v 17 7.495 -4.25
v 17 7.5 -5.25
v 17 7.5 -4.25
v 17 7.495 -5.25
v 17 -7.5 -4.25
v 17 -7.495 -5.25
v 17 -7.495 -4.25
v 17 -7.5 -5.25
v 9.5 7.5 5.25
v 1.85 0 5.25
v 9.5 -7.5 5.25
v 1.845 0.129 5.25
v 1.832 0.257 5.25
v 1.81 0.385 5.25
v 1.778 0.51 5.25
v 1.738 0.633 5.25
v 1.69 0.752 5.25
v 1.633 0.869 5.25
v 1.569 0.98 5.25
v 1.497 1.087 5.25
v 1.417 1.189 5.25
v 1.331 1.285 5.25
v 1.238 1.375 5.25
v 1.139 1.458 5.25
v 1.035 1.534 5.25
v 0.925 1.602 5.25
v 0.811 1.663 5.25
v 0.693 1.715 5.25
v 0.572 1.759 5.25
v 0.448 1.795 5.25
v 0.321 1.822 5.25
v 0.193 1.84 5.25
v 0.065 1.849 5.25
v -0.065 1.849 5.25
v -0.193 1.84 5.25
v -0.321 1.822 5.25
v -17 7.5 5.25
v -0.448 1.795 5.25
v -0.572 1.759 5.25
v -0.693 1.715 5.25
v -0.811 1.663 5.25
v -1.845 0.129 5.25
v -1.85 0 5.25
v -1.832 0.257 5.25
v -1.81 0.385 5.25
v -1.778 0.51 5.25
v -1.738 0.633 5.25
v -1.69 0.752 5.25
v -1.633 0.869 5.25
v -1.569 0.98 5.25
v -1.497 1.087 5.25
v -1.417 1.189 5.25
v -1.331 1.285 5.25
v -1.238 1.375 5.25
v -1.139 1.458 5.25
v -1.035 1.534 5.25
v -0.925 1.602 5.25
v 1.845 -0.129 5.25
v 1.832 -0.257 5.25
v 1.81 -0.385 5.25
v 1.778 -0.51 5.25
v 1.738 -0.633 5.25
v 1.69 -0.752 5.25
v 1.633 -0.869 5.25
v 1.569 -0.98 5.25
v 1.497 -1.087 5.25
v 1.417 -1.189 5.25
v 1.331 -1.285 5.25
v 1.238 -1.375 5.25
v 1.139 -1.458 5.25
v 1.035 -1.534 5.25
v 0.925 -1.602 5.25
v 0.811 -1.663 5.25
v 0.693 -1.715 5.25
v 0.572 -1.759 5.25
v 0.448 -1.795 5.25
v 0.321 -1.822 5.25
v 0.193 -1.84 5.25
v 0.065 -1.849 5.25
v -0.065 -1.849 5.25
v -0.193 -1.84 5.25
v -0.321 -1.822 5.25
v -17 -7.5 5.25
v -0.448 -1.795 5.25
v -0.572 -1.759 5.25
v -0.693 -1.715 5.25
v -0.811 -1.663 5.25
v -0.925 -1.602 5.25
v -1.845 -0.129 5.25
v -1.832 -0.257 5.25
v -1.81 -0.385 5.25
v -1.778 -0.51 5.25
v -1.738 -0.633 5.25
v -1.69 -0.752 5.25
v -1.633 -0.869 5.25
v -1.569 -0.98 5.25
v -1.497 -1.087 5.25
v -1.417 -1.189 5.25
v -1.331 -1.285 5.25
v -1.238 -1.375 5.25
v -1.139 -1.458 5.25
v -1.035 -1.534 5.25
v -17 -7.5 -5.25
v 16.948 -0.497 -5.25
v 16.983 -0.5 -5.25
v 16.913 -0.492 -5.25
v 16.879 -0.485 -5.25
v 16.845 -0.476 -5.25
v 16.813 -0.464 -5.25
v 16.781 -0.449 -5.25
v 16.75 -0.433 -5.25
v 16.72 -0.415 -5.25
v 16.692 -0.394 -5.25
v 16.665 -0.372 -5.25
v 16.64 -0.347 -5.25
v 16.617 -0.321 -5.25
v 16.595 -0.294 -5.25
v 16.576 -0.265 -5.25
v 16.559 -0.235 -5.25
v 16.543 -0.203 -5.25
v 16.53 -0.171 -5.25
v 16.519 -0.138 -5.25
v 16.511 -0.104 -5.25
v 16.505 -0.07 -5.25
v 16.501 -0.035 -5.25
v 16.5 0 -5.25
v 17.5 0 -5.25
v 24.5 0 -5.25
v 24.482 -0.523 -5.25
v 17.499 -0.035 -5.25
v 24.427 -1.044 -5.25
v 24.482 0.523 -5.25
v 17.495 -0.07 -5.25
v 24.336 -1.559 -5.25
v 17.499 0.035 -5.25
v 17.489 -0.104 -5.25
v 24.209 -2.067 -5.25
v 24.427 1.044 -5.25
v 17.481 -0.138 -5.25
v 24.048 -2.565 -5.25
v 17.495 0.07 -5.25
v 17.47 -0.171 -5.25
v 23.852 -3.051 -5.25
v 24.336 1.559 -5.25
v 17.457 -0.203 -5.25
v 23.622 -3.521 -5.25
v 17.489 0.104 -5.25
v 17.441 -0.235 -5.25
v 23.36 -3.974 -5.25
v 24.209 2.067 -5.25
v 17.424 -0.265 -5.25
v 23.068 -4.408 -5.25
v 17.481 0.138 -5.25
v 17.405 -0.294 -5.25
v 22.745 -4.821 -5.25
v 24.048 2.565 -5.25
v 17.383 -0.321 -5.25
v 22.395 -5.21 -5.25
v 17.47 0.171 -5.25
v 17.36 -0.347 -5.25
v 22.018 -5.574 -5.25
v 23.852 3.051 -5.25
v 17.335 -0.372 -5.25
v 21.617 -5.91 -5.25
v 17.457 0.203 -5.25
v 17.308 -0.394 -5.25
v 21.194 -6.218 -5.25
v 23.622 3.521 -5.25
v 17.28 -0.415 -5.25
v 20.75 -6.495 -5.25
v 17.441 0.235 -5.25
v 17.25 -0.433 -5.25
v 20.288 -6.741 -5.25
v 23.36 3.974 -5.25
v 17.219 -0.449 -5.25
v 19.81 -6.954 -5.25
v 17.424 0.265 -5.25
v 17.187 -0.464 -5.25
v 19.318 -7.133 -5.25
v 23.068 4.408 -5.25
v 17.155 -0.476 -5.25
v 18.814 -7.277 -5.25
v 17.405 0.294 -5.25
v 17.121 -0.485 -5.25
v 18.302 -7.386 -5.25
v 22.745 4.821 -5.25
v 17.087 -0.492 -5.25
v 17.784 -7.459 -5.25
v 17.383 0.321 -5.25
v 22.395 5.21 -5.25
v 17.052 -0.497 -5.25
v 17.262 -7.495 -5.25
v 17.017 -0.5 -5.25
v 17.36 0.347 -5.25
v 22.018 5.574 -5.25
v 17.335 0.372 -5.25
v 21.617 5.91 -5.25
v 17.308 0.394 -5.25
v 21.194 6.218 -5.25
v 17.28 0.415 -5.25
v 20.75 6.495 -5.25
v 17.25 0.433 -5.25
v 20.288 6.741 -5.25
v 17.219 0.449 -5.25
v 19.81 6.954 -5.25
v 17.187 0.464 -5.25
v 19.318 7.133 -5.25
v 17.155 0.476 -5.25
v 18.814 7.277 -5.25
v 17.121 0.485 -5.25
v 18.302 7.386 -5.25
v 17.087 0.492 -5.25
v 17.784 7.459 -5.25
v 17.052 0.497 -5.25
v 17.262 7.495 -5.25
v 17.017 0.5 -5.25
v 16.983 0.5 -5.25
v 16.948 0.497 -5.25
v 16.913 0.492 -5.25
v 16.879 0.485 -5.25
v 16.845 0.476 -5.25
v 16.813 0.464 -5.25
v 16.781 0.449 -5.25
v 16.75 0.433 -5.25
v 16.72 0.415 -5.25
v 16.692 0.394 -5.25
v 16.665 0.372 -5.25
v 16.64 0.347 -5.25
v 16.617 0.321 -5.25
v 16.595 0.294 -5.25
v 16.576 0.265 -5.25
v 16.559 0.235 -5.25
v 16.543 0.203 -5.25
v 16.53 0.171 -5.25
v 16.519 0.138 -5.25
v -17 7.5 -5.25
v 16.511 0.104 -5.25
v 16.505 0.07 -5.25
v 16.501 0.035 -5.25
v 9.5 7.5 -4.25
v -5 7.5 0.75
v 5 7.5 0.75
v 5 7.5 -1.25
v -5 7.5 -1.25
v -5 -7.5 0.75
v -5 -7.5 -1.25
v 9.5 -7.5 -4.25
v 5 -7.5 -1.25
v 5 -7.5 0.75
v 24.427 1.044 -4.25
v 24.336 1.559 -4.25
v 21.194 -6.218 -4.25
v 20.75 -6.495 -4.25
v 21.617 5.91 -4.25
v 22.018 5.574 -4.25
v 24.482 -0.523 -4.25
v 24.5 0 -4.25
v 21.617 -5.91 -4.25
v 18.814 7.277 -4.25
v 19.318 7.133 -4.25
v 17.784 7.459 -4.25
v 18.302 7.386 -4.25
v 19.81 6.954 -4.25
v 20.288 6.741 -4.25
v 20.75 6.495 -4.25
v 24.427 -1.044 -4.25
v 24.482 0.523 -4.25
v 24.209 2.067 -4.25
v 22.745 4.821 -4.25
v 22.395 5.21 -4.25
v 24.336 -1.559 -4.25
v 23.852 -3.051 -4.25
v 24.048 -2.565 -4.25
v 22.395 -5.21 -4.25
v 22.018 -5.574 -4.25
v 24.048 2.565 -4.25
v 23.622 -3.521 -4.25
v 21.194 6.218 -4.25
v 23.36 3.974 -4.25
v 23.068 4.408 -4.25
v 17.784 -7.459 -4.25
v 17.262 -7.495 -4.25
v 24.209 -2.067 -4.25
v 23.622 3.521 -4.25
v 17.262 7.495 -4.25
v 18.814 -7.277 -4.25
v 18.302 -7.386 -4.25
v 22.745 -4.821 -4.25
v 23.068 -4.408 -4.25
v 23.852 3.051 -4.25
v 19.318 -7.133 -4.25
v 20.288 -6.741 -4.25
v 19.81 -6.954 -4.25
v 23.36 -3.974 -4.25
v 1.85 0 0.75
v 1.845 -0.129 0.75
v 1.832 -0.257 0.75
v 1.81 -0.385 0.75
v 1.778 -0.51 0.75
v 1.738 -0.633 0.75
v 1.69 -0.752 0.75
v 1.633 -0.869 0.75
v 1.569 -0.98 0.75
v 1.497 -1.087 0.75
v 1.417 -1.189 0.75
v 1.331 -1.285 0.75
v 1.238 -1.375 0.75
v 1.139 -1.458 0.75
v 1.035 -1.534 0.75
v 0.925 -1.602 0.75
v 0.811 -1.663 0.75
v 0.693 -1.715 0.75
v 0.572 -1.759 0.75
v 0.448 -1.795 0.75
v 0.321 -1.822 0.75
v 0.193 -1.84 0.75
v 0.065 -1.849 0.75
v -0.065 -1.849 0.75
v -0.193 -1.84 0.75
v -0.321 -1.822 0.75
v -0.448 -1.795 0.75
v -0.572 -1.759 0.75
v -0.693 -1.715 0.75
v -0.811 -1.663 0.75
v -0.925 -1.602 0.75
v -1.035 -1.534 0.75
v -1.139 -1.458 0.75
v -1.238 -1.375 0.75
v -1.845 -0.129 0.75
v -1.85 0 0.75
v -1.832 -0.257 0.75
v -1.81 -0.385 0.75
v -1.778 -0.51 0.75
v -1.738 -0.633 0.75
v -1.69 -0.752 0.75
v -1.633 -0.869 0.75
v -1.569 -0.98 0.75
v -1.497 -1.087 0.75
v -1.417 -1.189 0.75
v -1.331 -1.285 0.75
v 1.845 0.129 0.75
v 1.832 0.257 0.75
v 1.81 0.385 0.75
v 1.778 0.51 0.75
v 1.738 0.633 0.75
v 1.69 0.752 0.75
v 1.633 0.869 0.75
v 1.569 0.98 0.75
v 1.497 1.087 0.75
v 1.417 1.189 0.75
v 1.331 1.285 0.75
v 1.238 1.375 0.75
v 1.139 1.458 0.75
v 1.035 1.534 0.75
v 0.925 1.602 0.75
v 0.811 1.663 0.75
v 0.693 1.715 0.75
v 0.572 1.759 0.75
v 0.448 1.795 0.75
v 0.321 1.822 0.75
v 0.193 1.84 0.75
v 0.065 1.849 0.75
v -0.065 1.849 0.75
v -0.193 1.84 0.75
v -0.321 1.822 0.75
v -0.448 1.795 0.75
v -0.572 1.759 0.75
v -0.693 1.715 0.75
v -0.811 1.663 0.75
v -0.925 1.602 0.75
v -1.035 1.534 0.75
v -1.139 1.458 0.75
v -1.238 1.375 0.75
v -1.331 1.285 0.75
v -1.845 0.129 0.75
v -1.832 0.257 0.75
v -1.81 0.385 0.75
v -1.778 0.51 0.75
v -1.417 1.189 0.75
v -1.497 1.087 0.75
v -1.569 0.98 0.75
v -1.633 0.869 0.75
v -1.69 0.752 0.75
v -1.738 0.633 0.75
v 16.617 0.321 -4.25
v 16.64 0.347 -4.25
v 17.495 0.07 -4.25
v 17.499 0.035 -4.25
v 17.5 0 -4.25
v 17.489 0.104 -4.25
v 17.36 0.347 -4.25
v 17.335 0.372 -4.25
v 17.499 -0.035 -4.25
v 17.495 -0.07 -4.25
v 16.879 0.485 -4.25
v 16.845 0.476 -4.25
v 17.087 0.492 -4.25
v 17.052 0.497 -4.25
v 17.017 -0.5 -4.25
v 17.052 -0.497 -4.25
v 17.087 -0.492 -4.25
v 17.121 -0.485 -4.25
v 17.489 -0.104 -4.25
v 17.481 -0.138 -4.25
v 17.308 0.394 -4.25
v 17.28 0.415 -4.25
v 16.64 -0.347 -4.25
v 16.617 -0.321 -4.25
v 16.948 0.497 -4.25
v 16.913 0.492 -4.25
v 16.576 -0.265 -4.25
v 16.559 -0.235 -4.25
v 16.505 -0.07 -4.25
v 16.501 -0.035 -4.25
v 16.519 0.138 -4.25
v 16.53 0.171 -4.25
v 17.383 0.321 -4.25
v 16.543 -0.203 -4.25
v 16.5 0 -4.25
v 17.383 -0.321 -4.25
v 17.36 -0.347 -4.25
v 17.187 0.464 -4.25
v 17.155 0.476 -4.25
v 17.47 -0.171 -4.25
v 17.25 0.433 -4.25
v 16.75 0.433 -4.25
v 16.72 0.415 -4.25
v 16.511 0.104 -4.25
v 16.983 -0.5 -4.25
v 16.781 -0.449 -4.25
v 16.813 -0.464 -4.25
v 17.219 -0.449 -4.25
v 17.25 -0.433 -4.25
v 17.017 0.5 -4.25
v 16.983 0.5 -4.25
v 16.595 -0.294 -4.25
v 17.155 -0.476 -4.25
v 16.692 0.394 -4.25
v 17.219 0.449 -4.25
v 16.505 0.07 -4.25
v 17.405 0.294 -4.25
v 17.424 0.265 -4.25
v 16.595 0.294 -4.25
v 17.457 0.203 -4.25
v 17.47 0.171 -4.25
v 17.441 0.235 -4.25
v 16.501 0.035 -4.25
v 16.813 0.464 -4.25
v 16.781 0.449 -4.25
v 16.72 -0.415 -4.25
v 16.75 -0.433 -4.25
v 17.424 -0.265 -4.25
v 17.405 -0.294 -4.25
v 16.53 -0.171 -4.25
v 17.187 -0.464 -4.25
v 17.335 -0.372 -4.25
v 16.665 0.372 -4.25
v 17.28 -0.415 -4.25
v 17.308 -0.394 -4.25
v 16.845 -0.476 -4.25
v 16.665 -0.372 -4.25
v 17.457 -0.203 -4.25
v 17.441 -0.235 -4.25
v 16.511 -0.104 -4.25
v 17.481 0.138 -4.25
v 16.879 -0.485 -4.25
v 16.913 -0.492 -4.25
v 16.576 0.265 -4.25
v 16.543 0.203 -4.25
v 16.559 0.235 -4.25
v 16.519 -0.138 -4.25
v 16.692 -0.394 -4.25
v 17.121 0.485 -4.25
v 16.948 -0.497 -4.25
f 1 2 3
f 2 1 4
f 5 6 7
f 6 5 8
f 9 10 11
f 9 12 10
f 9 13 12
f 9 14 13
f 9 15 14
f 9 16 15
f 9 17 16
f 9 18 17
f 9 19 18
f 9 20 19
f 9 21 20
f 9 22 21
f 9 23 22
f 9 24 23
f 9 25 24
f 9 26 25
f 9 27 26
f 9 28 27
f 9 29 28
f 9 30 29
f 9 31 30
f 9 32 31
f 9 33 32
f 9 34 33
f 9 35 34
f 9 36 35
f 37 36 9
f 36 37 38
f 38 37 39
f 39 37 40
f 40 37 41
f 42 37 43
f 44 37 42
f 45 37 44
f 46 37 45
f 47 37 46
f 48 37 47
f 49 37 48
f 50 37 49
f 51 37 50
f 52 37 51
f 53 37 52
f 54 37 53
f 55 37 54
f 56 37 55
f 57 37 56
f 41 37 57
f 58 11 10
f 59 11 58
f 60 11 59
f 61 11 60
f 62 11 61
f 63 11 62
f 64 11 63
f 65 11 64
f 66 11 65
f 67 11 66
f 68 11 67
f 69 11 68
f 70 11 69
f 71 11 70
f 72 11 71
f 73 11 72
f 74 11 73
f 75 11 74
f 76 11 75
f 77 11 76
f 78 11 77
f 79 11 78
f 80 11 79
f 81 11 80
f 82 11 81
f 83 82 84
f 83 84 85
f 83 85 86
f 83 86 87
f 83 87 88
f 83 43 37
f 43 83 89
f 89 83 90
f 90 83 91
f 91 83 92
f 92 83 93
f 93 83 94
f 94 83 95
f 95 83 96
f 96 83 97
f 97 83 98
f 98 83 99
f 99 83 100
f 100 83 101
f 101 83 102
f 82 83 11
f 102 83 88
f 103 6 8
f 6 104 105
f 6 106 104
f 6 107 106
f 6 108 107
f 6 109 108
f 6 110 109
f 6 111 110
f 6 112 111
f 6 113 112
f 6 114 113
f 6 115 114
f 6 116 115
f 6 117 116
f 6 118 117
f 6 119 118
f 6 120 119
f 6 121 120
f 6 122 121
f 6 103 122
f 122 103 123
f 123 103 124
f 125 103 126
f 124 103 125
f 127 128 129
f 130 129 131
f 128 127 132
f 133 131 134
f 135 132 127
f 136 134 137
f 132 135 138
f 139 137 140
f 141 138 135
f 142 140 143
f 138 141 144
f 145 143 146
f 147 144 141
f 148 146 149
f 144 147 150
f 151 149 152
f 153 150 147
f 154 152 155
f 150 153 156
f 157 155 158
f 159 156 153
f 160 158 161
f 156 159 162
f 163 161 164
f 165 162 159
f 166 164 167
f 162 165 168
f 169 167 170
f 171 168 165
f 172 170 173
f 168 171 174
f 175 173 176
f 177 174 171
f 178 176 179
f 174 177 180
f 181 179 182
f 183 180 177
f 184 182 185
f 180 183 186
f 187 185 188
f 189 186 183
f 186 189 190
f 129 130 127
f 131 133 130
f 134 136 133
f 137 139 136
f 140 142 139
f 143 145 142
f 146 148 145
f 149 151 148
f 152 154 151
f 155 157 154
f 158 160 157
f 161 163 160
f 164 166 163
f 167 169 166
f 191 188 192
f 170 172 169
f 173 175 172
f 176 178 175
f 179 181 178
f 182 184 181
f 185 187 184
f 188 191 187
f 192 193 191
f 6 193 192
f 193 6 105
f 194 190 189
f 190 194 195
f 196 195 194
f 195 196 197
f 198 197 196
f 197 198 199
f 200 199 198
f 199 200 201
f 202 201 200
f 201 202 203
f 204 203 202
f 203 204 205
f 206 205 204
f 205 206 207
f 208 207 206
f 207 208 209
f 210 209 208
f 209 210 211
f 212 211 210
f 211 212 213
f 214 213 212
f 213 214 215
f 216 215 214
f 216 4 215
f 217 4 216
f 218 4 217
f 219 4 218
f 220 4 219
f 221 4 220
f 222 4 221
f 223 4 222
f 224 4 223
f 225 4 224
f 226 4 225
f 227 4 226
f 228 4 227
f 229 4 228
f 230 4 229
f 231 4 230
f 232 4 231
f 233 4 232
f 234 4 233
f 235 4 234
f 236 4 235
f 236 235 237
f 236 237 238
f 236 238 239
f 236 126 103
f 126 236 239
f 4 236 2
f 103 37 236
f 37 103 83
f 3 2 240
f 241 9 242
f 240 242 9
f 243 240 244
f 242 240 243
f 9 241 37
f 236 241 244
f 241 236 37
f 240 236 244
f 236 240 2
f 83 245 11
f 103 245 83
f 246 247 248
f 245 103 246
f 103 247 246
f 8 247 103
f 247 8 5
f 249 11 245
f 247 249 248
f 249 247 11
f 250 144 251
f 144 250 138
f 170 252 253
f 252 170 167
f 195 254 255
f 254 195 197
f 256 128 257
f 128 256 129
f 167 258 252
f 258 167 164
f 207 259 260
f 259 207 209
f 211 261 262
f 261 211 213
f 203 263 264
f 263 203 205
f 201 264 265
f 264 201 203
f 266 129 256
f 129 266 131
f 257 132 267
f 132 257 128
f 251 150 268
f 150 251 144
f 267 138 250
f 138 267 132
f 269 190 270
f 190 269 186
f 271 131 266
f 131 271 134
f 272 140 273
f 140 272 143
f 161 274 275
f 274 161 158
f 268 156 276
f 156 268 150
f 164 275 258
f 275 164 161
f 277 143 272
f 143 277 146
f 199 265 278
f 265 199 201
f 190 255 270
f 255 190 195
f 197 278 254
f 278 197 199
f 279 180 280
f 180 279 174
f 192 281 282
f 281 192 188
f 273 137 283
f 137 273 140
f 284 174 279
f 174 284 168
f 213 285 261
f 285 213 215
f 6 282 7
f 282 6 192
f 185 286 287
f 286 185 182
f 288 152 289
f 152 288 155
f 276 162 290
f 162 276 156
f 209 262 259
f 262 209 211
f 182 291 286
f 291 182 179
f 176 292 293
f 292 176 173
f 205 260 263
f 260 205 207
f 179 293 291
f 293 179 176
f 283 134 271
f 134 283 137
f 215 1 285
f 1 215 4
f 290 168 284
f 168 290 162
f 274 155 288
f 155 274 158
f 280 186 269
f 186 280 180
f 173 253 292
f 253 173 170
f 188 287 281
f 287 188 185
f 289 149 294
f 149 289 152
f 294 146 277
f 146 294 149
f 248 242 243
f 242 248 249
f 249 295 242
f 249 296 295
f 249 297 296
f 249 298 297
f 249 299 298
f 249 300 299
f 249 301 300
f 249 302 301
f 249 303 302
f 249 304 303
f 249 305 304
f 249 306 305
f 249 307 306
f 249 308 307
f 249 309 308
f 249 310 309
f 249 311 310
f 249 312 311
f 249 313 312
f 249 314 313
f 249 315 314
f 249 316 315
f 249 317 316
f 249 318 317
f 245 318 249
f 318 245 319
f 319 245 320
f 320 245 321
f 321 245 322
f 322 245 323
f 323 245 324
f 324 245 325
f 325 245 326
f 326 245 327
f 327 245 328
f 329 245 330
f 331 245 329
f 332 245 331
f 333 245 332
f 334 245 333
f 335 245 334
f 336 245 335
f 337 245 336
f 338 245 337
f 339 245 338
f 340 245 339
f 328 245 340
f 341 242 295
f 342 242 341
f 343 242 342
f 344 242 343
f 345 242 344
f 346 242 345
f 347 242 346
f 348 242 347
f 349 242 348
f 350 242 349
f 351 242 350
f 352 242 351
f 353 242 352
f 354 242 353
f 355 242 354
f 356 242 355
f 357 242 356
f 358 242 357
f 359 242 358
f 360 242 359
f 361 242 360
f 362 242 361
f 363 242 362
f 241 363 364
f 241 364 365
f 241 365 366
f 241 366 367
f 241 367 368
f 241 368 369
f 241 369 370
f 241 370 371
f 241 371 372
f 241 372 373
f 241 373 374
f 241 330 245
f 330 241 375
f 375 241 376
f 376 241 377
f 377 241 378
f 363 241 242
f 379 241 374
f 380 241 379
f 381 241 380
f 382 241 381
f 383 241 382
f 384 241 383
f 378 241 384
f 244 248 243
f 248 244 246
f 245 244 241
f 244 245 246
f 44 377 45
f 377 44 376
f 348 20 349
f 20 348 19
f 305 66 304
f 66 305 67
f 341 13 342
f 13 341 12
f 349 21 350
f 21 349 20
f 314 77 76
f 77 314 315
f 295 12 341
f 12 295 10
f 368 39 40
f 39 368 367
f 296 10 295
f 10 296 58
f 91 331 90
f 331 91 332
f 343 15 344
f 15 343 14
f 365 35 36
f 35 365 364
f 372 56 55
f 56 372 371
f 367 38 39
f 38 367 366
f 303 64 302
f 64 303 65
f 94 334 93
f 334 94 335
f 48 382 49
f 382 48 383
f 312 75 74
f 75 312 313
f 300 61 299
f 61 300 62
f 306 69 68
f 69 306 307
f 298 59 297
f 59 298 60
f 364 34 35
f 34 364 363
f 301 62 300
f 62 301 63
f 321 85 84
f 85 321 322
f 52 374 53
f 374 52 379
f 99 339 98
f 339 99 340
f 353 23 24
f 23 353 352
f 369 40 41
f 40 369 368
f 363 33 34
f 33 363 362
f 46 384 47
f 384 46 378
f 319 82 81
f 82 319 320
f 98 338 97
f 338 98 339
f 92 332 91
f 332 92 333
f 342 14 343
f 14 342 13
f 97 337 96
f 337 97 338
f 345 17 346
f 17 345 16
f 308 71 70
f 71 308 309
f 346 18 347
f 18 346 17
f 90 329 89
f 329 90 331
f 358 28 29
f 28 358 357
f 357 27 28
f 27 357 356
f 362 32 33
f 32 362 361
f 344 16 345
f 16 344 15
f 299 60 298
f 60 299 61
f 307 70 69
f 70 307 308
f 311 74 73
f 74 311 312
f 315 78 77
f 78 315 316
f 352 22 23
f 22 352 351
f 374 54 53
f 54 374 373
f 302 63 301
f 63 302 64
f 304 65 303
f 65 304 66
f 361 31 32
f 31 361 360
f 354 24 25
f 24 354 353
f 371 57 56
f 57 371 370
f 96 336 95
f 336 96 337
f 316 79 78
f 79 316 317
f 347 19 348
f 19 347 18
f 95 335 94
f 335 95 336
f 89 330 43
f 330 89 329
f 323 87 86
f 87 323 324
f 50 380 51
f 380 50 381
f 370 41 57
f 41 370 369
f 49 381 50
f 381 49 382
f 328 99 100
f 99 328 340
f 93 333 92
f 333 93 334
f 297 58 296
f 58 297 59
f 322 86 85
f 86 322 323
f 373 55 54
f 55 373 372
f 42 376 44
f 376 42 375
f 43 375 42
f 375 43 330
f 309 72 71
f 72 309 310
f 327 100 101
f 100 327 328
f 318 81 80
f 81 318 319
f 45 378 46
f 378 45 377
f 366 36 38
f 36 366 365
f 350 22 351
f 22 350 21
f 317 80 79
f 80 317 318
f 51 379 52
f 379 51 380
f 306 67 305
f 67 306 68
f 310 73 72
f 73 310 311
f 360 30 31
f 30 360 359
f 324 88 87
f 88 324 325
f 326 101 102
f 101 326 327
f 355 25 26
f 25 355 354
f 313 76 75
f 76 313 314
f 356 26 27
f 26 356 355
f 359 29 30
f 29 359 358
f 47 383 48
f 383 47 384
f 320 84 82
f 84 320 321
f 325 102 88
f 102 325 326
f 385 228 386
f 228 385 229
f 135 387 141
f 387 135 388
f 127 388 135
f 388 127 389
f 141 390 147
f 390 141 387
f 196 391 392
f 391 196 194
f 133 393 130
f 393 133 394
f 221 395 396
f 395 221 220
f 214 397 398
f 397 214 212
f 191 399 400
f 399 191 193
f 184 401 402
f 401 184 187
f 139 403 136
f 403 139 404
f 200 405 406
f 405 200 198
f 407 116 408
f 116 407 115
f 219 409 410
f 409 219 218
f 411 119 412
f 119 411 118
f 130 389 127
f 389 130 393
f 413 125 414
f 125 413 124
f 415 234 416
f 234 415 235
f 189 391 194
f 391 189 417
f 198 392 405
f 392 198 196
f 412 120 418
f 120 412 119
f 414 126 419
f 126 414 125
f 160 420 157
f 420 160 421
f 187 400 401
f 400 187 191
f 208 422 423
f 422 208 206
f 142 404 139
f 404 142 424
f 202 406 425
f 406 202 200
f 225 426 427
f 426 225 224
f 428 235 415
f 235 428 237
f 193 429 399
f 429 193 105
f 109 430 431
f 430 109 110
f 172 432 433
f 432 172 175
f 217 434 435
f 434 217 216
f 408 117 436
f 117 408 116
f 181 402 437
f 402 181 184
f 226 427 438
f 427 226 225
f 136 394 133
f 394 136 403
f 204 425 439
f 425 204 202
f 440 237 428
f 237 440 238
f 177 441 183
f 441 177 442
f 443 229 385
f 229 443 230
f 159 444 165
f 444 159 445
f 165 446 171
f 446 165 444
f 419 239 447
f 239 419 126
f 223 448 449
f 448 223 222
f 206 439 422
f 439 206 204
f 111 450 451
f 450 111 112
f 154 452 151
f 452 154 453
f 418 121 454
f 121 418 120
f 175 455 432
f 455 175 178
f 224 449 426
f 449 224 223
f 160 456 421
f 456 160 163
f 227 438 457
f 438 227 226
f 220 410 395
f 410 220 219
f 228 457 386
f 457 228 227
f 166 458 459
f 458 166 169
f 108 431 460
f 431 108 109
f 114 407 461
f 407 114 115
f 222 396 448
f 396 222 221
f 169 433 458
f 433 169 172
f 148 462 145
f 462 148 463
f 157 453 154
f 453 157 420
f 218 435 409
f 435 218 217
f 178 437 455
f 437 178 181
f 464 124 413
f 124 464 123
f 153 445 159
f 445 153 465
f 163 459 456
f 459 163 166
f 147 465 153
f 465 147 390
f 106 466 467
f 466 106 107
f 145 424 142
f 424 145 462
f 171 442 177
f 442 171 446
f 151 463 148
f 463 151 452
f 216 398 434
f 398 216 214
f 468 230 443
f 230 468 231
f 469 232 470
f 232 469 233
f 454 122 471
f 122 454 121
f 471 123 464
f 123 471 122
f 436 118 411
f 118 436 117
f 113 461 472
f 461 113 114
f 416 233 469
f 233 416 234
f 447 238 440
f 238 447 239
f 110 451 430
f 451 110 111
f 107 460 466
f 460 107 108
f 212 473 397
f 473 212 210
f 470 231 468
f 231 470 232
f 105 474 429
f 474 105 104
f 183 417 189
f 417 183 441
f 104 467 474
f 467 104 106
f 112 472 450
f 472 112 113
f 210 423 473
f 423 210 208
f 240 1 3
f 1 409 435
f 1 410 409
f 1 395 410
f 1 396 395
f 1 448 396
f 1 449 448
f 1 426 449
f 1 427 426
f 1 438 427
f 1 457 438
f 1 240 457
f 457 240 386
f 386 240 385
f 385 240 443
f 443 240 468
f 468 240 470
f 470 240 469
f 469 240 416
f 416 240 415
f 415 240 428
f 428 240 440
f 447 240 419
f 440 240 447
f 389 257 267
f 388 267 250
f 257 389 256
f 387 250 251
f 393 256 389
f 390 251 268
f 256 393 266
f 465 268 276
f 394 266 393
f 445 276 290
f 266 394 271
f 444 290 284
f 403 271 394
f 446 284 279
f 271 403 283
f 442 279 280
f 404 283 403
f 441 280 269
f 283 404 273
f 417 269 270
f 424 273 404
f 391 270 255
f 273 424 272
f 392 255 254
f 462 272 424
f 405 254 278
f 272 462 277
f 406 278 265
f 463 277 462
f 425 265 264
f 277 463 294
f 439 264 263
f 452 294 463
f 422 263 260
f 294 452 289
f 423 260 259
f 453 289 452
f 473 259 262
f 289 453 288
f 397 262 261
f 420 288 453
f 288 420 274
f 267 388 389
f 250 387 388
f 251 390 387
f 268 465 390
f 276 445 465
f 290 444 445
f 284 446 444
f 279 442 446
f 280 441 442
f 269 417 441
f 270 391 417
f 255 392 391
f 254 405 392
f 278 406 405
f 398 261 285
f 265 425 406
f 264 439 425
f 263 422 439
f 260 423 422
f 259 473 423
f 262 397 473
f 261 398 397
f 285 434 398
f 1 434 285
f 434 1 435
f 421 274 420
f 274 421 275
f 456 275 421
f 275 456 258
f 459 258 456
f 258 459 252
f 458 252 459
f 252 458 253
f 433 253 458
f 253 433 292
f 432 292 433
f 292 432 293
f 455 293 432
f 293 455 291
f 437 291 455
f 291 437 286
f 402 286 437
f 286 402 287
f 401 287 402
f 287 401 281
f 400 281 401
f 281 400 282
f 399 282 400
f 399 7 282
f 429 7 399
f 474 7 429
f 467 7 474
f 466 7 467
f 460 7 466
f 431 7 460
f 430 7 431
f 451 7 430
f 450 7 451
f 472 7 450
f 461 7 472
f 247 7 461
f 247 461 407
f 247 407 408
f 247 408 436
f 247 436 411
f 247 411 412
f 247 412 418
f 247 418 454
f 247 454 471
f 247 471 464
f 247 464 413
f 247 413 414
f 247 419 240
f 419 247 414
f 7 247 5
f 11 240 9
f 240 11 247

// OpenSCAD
$fn = 90;
depth = 15;
height = 10.5;
slitHeight = 2;
centerHoleX = 17;
difference(){
	union(){
		cube([34, depth, height], center=true);
		translate([centerHoleX, 0, 0])
			cylinder(d=depth, h=height, center=true);
	}
	translate([0, 0, -height/2+slitHeight/2+4])
		#cube([10, depth, slitHeight], center=true);
	#cylinder(d=3.7, h=height);
	translate([centerHoleX, 0, 0])
		#cylinder(d=1, h=height, center=true);
	translate([centerHoleX, 0, 1])
		#cube([depth, depth, height], center=true);
}
